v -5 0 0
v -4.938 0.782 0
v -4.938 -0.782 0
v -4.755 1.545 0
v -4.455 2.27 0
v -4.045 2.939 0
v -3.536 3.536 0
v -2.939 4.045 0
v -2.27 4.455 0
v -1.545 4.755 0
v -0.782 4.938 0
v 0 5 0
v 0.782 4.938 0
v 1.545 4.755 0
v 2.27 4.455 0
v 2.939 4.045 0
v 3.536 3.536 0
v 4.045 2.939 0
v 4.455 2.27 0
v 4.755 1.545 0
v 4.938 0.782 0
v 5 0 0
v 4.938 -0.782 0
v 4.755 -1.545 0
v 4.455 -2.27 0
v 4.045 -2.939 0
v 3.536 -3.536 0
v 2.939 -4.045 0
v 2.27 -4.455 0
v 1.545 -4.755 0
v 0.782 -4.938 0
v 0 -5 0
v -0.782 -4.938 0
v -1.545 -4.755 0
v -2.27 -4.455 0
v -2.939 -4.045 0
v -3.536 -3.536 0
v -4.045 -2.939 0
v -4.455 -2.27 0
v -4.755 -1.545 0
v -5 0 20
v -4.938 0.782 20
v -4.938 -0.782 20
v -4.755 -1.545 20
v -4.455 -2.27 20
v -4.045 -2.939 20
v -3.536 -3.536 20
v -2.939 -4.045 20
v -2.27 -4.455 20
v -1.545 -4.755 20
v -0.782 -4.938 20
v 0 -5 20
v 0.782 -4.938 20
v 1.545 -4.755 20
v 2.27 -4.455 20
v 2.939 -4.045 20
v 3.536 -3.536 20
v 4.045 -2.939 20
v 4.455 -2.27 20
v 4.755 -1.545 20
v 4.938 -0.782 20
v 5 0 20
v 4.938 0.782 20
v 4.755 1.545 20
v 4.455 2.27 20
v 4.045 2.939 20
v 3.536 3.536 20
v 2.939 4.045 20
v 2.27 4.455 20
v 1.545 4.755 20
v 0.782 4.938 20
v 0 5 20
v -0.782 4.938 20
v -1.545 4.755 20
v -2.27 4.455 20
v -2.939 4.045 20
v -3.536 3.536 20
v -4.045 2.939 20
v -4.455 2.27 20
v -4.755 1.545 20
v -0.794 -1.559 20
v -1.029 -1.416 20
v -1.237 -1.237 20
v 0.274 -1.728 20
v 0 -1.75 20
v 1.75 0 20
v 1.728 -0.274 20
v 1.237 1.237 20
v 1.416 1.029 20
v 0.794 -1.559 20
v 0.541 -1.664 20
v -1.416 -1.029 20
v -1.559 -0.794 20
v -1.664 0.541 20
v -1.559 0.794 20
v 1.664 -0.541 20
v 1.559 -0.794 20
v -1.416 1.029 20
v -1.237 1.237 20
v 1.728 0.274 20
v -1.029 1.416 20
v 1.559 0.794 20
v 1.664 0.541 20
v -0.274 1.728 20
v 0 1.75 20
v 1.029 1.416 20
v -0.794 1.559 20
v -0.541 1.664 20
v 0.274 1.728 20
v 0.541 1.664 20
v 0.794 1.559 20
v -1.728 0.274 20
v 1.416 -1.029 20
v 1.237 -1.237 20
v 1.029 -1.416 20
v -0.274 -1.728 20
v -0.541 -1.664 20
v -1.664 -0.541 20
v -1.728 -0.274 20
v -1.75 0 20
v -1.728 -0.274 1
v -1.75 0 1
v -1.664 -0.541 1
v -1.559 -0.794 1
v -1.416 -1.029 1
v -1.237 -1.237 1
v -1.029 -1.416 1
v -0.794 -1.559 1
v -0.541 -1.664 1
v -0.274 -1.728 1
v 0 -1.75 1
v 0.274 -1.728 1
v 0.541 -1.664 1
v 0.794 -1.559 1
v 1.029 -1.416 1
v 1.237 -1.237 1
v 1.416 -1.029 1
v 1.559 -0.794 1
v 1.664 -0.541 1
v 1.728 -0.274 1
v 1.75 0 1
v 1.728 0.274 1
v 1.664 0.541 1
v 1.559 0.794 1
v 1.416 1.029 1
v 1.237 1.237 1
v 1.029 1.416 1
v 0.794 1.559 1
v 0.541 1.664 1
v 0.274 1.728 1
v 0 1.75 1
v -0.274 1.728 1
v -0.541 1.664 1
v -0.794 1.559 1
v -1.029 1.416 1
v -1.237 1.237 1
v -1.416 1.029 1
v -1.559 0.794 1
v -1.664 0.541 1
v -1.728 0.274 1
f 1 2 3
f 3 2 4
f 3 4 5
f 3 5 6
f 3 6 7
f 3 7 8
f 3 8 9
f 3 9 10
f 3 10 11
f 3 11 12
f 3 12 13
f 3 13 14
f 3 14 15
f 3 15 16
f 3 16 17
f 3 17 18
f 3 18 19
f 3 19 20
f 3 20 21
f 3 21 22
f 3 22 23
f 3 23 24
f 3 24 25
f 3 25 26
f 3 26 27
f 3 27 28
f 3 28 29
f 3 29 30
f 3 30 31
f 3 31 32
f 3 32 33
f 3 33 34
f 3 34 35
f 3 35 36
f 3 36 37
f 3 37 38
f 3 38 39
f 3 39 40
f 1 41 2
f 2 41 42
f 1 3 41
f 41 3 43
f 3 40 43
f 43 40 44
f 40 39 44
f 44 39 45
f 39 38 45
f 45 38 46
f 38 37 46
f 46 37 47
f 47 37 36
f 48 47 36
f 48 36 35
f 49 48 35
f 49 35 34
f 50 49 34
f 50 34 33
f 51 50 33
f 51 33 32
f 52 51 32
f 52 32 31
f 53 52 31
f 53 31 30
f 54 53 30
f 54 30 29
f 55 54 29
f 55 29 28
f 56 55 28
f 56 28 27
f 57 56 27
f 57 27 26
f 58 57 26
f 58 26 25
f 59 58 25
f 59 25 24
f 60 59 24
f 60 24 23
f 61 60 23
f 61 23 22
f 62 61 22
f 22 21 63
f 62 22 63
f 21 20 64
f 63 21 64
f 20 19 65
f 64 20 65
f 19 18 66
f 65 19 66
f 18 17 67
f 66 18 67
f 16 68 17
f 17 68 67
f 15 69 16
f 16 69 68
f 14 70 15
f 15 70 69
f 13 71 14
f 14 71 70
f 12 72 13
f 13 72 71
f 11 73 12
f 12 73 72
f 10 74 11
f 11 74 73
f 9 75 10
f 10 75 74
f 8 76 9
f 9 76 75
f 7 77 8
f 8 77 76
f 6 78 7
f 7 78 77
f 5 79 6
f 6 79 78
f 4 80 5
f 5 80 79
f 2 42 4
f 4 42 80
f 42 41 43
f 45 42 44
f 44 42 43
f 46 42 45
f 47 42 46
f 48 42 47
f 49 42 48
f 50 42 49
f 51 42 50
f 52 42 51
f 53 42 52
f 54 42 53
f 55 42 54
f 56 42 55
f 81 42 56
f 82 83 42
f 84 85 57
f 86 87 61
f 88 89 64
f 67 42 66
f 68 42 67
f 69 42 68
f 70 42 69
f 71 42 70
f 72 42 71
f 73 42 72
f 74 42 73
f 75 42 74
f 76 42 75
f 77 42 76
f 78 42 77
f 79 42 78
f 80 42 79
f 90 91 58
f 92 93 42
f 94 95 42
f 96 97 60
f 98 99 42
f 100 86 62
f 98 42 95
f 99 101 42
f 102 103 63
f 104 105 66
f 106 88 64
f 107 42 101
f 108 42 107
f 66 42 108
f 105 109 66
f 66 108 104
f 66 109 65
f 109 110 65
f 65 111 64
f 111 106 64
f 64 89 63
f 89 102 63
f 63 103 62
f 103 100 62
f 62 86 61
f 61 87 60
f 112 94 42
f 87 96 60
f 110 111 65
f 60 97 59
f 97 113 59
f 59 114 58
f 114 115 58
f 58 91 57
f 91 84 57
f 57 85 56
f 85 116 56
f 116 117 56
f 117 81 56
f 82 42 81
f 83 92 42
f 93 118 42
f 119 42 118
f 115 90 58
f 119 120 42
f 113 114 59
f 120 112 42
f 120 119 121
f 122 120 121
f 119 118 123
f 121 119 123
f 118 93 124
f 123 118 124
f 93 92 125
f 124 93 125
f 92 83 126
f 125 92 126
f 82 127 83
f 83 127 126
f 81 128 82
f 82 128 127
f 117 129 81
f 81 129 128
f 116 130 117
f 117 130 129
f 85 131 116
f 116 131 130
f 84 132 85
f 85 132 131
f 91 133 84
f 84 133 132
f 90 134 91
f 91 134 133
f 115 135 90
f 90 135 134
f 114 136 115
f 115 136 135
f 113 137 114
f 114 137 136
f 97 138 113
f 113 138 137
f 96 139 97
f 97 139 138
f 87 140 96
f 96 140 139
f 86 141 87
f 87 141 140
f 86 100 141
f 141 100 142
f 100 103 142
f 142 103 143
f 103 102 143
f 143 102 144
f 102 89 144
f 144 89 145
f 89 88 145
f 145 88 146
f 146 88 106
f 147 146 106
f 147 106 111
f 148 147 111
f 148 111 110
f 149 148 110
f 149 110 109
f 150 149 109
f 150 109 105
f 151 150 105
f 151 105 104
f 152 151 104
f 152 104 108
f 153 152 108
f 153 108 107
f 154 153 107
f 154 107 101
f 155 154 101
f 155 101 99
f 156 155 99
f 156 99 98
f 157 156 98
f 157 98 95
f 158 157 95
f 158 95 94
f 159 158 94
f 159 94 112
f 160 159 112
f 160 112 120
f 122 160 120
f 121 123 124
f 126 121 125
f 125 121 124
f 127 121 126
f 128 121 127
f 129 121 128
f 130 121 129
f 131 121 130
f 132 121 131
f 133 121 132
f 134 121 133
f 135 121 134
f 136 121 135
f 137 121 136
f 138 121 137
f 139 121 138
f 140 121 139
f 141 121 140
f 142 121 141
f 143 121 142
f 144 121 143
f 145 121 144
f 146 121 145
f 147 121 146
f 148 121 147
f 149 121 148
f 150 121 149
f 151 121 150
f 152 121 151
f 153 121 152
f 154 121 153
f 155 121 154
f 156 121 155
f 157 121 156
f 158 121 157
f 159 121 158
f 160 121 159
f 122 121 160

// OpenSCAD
$fn=40; // resolution of the arcs

scale([10,10,10]) { // cm to mm scaling

	difference() {
		cylinder(h = 2, r=0.5);
		translate([0,0,0.1])
		cylinder(h = 2.2, r=0.175);
	}

}
